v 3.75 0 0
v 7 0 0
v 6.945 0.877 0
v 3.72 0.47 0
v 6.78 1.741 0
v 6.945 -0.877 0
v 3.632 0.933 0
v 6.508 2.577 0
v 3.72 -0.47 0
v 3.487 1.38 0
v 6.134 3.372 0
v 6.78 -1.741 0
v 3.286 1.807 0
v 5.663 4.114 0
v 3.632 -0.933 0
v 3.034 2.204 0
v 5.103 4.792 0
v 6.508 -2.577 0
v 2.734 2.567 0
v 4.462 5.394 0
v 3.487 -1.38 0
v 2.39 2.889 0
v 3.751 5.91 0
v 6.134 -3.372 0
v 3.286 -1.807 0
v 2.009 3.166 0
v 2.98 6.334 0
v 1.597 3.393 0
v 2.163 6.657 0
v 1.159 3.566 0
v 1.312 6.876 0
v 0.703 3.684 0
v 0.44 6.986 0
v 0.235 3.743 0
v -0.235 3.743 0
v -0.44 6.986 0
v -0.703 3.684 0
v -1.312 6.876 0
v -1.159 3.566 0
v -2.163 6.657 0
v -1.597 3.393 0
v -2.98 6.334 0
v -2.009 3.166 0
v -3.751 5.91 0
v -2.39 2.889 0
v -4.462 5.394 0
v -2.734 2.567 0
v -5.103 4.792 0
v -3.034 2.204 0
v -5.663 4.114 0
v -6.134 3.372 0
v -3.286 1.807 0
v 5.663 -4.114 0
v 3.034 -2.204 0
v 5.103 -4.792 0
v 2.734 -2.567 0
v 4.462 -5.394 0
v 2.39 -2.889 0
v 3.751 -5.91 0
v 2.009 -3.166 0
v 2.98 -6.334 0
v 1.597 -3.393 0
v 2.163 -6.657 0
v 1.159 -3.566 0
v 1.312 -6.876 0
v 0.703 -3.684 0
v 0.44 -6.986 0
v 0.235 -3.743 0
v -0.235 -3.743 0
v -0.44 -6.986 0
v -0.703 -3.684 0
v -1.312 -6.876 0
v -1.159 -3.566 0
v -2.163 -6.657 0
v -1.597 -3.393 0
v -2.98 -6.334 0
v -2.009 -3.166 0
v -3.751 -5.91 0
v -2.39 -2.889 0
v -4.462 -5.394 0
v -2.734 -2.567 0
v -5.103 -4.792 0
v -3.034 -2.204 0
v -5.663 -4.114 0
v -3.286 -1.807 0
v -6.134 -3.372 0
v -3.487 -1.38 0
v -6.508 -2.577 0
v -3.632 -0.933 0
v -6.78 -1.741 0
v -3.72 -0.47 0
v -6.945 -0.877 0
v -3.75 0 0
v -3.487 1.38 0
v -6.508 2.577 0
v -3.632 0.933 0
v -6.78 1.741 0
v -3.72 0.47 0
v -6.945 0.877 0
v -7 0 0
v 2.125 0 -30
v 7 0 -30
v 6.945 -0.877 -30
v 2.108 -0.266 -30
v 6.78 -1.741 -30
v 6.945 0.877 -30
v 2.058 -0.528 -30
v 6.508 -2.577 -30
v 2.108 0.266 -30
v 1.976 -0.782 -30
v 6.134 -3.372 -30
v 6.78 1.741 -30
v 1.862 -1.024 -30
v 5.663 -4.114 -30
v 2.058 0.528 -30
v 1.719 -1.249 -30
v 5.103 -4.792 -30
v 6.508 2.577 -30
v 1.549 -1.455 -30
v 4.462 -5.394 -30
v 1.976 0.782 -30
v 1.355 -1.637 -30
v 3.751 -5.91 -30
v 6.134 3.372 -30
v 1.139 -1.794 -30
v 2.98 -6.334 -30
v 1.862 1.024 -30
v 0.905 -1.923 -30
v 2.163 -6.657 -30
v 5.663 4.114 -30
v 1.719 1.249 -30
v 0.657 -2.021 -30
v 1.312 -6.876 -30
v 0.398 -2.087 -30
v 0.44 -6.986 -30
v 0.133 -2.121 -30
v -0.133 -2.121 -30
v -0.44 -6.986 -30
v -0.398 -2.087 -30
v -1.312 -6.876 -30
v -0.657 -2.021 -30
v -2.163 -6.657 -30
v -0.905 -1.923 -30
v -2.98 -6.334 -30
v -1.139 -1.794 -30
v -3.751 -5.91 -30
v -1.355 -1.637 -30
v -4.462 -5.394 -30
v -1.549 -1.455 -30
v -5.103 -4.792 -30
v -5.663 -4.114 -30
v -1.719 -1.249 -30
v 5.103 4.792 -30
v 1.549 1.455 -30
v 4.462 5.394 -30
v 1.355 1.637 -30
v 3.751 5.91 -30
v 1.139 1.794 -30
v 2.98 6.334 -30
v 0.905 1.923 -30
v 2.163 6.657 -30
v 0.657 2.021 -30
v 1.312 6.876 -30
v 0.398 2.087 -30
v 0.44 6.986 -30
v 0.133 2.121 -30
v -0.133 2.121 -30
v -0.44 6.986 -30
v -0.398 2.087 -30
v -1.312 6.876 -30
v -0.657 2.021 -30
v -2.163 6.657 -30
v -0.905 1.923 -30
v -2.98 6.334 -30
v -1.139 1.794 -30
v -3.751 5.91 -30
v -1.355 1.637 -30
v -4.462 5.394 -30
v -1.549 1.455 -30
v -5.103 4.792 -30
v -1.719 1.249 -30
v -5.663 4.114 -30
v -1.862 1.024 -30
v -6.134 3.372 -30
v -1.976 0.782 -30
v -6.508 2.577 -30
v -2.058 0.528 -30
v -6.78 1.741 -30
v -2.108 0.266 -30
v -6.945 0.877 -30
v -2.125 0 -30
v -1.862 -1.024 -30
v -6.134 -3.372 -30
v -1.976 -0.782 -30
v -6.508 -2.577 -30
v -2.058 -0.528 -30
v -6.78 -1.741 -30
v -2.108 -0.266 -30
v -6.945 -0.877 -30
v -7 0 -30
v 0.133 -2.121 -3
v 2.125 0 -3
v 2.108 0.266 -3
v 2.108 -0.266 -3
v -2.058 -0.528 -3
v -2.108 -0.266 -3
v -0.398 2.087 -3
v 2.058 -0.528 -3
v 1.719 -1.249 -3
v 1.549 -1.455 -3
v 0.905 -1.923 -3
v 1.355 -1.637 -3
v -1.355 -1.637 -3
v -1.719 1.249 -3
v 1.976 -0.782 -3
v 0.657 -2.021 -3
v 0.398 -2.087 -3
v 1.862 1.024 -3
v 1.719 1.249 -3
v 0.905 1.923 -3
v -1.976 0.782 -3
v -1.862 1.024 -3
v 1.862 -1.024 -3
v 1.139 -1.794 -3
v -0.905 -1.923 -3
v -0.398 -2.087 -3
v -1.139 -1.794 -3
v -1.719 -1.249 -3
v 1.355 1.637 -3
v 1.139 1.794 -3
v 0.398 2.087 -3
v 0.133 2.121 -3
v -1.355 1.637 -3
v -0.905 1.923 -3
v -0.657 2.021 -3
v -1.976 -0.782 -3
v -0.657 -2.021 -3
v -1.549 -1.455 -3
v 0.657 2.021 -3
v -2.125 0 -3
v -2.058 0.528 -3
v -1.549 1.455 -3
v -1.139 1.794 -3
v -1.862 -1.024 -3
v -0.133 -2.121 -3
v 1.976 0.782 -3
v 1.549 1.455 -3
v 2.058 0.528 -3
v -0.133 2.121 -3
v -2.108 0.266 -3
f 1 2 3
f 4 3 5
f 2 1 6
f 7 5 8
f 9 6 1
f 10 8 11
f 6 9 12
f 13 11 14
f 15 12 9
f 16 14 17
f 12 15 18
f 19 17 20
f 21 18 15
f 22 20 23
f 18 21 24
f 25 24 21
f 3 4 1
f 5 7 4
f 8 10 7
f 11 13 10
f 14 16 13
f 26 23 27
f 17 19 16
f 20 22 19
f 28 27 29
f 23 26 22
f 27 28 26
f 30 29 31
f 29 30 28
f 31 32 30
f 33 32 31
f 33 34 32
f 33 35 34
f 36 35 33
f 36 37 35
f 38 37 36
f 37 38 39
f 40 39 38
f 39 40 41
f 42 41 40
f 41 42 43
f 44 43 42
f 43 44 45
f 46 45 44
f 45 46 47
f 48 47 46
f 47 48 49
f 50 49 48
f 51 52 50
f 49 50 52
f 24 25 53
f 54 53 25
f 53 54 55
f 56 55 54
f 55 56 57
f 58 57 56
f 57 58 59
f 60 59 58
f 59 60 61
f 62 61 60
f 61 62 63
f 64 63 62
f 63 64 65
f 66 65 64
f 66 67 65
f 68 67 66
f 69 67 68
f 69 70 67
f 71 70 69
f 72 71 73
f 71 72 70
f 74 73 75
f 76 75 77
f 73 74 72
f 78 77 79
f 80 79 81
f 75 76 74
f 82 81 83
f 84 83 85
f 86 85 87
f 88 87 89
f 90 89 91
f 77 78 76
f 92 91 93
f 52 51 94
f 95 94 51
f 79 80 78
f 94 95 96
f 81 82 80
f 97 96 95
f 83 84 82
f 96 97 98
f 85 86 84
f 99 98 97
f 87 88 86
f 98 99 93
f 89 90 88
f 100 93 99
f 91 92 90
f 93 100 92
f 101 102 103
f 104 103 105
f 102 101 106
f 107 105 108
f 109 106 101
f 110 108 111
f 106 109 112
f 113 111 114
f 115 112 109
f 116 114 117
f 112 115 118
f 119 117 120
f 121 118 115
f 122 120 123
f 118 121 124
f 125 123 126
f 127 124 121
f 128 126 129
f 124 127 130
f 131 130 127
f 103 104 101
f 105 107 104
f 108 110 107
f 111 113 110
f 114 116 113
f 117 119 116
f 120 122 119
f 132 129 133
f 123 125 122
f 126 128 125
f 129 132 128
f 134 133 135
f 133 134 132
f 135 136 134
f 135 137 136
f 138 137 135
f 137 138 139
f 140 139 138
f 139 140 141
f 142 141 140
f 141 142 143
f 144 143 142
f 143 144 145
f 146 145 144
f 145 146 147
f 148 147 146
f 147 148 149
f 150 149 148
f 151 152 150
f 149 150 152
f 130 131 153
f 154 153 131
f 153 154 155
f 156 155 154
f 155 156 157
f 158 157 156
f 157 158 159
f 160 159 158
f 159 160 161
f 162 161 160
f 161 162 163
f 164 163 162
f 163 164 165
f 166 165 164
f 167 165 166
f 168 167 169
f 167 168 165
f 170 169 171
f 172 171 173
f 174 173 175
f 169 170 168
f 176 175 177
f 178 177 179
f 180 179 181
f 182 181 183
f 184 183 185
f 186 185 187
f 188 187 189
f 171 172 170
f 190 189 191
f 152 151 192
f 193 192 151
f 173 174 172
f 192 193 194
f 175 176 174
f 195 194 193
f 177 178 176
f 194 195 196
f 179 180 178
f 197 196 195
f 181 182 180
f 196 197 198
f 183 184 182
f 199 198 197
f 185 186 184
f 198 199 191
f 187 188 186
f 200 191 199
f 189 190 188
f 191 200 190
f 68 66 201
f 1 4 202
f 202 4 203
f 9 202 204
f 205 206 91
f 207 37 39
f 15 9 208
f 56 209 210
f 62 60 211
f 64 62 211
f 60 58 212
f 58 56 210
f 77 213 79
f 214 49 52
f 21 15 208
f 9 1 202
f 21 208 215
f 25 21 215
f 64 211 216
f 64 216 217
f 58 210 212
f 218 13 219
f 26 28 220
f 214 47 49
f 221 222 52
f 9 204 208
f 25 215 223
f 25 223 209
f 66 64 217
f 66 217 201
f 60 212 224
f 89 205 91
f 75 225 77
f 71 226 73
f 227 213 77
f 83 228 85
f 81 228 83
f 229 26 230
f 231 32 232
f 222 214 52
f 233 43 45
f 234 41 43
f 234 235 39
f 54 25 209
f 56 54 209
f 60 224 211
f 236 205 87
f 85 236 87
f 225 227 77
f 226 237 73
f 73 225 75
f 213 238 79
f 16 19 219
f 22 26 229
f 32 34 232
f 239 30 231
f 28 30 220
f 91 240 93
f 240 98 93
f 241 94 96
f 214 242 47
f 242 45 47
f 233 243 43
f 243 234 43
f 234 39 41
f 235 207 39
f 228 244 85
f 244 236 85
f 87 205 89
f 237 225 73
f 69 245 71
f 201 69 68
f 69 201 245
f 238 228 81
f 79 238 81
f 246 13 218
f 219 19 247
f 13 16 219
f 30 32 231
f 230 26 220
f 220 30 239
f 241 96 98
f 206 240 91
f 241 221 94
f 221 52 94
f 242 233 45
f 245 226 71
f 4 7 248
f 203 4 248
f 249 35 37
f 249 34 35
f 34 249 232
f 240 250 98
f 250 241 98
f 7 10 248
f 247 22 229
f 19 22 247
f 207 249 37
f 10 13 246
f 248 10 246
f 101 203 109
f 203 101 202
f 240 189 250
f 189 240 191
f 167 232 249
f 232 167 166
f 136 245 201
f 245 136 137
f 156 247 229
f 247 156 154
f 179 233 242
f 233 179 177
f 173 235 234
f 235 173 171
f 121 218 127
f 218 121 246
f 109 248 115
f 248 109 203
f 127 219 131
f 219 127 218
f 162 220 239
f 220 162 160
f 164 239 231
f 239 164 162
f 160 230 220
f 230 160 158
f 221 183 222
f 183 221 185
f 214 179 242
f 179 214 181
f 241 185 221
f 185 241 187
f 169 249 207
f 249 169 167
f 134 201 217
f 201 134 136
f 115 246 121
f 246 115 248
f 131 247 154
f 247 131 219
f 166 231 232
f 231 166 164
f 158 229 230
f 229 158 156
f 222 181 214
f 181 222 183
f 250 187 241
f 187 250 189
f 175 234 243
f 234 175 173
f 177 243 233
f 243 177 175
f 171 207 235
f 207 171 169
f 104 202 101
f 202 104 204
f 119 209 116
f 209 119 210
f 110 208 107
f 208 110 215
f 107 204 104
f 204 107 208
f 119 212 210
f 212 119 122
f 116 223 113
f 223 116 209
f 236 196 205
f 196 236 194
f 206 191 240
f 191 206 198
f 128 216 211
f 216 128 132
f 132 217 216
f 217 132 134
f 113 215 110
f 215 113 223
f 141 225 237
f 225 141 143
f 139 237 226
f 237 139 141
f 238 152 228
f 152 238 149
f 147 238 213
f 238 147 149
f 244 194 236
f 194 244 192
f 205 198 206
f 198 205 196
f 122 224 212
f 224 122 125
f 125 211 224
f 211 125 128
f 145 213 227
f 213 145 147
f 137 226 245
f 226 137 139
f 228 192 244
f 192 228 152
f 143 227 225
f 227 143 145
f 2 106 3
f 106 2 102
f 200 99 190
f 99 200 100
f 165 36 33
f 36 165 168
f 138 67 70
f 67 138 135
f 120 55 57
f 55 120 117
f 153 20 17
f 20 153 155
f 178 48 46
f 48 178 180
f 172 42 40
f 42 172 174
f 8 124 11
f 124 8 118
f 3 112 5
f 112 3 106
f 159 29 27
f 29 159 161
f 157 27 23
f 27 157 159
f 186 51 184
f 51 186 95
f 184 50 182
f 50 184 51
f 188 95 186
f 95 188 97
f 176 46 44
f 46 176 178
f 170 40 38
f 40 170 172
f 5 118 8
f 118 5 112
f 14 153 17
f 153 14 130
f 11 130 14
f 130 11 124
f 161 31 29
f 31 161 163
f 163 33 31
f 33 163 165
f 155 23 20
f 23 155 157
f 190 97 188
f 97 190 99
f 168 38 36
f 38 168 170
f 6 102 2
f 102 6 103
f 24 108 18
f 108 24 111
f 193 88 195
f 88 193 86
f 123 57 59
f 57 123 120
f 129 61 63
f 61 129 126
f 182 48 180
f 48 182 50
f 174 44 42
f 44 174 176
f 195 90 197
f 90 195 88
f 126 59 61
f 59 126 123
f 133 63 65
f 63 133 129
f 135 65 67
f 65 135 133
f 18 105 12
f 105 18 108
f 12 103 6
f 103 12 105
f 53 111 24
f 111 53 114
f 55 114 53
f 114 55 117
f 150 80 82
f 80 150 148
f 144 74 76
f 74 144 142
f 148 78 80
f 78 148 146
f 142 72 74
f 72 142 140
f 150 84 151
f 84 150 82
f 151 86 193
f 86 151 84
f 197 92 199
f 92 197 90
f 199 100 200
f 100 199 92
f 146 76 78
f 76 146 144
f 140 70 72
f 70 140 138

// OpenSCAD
$fn = 50;


difference() {
	union() {
		translate(v = [0, 0, -30.0000000000]) {
			cylinder(h = 30, r = 7.0000000000);
		}
	}
	union() {
		translate(v = [0, 0, 0]) {
			rotate(a = [0, 0, 0]) {
				difference() {
					union() {
						#translate(v = [0, 0, -30.0000000000]) {
							cylinder(h = 30, r = 2.0000000000);
						}
						#translate(v = [0, 0, -3]) {
							cylinder(h = 3, r1 = 2.1250000000, r2 = 3.7500000000);
						}
						#translate(v = [0, 0, -30.0000000000]) {
							cylinder(h = 30, r = 2.1250000000);
						}
						#translate(v = [0, 0, -30.0000000000]) {
							cylinder(h = 30, r = 2.0000000000);
						}
					}
					union();
				}
			}
		}
	}
}
